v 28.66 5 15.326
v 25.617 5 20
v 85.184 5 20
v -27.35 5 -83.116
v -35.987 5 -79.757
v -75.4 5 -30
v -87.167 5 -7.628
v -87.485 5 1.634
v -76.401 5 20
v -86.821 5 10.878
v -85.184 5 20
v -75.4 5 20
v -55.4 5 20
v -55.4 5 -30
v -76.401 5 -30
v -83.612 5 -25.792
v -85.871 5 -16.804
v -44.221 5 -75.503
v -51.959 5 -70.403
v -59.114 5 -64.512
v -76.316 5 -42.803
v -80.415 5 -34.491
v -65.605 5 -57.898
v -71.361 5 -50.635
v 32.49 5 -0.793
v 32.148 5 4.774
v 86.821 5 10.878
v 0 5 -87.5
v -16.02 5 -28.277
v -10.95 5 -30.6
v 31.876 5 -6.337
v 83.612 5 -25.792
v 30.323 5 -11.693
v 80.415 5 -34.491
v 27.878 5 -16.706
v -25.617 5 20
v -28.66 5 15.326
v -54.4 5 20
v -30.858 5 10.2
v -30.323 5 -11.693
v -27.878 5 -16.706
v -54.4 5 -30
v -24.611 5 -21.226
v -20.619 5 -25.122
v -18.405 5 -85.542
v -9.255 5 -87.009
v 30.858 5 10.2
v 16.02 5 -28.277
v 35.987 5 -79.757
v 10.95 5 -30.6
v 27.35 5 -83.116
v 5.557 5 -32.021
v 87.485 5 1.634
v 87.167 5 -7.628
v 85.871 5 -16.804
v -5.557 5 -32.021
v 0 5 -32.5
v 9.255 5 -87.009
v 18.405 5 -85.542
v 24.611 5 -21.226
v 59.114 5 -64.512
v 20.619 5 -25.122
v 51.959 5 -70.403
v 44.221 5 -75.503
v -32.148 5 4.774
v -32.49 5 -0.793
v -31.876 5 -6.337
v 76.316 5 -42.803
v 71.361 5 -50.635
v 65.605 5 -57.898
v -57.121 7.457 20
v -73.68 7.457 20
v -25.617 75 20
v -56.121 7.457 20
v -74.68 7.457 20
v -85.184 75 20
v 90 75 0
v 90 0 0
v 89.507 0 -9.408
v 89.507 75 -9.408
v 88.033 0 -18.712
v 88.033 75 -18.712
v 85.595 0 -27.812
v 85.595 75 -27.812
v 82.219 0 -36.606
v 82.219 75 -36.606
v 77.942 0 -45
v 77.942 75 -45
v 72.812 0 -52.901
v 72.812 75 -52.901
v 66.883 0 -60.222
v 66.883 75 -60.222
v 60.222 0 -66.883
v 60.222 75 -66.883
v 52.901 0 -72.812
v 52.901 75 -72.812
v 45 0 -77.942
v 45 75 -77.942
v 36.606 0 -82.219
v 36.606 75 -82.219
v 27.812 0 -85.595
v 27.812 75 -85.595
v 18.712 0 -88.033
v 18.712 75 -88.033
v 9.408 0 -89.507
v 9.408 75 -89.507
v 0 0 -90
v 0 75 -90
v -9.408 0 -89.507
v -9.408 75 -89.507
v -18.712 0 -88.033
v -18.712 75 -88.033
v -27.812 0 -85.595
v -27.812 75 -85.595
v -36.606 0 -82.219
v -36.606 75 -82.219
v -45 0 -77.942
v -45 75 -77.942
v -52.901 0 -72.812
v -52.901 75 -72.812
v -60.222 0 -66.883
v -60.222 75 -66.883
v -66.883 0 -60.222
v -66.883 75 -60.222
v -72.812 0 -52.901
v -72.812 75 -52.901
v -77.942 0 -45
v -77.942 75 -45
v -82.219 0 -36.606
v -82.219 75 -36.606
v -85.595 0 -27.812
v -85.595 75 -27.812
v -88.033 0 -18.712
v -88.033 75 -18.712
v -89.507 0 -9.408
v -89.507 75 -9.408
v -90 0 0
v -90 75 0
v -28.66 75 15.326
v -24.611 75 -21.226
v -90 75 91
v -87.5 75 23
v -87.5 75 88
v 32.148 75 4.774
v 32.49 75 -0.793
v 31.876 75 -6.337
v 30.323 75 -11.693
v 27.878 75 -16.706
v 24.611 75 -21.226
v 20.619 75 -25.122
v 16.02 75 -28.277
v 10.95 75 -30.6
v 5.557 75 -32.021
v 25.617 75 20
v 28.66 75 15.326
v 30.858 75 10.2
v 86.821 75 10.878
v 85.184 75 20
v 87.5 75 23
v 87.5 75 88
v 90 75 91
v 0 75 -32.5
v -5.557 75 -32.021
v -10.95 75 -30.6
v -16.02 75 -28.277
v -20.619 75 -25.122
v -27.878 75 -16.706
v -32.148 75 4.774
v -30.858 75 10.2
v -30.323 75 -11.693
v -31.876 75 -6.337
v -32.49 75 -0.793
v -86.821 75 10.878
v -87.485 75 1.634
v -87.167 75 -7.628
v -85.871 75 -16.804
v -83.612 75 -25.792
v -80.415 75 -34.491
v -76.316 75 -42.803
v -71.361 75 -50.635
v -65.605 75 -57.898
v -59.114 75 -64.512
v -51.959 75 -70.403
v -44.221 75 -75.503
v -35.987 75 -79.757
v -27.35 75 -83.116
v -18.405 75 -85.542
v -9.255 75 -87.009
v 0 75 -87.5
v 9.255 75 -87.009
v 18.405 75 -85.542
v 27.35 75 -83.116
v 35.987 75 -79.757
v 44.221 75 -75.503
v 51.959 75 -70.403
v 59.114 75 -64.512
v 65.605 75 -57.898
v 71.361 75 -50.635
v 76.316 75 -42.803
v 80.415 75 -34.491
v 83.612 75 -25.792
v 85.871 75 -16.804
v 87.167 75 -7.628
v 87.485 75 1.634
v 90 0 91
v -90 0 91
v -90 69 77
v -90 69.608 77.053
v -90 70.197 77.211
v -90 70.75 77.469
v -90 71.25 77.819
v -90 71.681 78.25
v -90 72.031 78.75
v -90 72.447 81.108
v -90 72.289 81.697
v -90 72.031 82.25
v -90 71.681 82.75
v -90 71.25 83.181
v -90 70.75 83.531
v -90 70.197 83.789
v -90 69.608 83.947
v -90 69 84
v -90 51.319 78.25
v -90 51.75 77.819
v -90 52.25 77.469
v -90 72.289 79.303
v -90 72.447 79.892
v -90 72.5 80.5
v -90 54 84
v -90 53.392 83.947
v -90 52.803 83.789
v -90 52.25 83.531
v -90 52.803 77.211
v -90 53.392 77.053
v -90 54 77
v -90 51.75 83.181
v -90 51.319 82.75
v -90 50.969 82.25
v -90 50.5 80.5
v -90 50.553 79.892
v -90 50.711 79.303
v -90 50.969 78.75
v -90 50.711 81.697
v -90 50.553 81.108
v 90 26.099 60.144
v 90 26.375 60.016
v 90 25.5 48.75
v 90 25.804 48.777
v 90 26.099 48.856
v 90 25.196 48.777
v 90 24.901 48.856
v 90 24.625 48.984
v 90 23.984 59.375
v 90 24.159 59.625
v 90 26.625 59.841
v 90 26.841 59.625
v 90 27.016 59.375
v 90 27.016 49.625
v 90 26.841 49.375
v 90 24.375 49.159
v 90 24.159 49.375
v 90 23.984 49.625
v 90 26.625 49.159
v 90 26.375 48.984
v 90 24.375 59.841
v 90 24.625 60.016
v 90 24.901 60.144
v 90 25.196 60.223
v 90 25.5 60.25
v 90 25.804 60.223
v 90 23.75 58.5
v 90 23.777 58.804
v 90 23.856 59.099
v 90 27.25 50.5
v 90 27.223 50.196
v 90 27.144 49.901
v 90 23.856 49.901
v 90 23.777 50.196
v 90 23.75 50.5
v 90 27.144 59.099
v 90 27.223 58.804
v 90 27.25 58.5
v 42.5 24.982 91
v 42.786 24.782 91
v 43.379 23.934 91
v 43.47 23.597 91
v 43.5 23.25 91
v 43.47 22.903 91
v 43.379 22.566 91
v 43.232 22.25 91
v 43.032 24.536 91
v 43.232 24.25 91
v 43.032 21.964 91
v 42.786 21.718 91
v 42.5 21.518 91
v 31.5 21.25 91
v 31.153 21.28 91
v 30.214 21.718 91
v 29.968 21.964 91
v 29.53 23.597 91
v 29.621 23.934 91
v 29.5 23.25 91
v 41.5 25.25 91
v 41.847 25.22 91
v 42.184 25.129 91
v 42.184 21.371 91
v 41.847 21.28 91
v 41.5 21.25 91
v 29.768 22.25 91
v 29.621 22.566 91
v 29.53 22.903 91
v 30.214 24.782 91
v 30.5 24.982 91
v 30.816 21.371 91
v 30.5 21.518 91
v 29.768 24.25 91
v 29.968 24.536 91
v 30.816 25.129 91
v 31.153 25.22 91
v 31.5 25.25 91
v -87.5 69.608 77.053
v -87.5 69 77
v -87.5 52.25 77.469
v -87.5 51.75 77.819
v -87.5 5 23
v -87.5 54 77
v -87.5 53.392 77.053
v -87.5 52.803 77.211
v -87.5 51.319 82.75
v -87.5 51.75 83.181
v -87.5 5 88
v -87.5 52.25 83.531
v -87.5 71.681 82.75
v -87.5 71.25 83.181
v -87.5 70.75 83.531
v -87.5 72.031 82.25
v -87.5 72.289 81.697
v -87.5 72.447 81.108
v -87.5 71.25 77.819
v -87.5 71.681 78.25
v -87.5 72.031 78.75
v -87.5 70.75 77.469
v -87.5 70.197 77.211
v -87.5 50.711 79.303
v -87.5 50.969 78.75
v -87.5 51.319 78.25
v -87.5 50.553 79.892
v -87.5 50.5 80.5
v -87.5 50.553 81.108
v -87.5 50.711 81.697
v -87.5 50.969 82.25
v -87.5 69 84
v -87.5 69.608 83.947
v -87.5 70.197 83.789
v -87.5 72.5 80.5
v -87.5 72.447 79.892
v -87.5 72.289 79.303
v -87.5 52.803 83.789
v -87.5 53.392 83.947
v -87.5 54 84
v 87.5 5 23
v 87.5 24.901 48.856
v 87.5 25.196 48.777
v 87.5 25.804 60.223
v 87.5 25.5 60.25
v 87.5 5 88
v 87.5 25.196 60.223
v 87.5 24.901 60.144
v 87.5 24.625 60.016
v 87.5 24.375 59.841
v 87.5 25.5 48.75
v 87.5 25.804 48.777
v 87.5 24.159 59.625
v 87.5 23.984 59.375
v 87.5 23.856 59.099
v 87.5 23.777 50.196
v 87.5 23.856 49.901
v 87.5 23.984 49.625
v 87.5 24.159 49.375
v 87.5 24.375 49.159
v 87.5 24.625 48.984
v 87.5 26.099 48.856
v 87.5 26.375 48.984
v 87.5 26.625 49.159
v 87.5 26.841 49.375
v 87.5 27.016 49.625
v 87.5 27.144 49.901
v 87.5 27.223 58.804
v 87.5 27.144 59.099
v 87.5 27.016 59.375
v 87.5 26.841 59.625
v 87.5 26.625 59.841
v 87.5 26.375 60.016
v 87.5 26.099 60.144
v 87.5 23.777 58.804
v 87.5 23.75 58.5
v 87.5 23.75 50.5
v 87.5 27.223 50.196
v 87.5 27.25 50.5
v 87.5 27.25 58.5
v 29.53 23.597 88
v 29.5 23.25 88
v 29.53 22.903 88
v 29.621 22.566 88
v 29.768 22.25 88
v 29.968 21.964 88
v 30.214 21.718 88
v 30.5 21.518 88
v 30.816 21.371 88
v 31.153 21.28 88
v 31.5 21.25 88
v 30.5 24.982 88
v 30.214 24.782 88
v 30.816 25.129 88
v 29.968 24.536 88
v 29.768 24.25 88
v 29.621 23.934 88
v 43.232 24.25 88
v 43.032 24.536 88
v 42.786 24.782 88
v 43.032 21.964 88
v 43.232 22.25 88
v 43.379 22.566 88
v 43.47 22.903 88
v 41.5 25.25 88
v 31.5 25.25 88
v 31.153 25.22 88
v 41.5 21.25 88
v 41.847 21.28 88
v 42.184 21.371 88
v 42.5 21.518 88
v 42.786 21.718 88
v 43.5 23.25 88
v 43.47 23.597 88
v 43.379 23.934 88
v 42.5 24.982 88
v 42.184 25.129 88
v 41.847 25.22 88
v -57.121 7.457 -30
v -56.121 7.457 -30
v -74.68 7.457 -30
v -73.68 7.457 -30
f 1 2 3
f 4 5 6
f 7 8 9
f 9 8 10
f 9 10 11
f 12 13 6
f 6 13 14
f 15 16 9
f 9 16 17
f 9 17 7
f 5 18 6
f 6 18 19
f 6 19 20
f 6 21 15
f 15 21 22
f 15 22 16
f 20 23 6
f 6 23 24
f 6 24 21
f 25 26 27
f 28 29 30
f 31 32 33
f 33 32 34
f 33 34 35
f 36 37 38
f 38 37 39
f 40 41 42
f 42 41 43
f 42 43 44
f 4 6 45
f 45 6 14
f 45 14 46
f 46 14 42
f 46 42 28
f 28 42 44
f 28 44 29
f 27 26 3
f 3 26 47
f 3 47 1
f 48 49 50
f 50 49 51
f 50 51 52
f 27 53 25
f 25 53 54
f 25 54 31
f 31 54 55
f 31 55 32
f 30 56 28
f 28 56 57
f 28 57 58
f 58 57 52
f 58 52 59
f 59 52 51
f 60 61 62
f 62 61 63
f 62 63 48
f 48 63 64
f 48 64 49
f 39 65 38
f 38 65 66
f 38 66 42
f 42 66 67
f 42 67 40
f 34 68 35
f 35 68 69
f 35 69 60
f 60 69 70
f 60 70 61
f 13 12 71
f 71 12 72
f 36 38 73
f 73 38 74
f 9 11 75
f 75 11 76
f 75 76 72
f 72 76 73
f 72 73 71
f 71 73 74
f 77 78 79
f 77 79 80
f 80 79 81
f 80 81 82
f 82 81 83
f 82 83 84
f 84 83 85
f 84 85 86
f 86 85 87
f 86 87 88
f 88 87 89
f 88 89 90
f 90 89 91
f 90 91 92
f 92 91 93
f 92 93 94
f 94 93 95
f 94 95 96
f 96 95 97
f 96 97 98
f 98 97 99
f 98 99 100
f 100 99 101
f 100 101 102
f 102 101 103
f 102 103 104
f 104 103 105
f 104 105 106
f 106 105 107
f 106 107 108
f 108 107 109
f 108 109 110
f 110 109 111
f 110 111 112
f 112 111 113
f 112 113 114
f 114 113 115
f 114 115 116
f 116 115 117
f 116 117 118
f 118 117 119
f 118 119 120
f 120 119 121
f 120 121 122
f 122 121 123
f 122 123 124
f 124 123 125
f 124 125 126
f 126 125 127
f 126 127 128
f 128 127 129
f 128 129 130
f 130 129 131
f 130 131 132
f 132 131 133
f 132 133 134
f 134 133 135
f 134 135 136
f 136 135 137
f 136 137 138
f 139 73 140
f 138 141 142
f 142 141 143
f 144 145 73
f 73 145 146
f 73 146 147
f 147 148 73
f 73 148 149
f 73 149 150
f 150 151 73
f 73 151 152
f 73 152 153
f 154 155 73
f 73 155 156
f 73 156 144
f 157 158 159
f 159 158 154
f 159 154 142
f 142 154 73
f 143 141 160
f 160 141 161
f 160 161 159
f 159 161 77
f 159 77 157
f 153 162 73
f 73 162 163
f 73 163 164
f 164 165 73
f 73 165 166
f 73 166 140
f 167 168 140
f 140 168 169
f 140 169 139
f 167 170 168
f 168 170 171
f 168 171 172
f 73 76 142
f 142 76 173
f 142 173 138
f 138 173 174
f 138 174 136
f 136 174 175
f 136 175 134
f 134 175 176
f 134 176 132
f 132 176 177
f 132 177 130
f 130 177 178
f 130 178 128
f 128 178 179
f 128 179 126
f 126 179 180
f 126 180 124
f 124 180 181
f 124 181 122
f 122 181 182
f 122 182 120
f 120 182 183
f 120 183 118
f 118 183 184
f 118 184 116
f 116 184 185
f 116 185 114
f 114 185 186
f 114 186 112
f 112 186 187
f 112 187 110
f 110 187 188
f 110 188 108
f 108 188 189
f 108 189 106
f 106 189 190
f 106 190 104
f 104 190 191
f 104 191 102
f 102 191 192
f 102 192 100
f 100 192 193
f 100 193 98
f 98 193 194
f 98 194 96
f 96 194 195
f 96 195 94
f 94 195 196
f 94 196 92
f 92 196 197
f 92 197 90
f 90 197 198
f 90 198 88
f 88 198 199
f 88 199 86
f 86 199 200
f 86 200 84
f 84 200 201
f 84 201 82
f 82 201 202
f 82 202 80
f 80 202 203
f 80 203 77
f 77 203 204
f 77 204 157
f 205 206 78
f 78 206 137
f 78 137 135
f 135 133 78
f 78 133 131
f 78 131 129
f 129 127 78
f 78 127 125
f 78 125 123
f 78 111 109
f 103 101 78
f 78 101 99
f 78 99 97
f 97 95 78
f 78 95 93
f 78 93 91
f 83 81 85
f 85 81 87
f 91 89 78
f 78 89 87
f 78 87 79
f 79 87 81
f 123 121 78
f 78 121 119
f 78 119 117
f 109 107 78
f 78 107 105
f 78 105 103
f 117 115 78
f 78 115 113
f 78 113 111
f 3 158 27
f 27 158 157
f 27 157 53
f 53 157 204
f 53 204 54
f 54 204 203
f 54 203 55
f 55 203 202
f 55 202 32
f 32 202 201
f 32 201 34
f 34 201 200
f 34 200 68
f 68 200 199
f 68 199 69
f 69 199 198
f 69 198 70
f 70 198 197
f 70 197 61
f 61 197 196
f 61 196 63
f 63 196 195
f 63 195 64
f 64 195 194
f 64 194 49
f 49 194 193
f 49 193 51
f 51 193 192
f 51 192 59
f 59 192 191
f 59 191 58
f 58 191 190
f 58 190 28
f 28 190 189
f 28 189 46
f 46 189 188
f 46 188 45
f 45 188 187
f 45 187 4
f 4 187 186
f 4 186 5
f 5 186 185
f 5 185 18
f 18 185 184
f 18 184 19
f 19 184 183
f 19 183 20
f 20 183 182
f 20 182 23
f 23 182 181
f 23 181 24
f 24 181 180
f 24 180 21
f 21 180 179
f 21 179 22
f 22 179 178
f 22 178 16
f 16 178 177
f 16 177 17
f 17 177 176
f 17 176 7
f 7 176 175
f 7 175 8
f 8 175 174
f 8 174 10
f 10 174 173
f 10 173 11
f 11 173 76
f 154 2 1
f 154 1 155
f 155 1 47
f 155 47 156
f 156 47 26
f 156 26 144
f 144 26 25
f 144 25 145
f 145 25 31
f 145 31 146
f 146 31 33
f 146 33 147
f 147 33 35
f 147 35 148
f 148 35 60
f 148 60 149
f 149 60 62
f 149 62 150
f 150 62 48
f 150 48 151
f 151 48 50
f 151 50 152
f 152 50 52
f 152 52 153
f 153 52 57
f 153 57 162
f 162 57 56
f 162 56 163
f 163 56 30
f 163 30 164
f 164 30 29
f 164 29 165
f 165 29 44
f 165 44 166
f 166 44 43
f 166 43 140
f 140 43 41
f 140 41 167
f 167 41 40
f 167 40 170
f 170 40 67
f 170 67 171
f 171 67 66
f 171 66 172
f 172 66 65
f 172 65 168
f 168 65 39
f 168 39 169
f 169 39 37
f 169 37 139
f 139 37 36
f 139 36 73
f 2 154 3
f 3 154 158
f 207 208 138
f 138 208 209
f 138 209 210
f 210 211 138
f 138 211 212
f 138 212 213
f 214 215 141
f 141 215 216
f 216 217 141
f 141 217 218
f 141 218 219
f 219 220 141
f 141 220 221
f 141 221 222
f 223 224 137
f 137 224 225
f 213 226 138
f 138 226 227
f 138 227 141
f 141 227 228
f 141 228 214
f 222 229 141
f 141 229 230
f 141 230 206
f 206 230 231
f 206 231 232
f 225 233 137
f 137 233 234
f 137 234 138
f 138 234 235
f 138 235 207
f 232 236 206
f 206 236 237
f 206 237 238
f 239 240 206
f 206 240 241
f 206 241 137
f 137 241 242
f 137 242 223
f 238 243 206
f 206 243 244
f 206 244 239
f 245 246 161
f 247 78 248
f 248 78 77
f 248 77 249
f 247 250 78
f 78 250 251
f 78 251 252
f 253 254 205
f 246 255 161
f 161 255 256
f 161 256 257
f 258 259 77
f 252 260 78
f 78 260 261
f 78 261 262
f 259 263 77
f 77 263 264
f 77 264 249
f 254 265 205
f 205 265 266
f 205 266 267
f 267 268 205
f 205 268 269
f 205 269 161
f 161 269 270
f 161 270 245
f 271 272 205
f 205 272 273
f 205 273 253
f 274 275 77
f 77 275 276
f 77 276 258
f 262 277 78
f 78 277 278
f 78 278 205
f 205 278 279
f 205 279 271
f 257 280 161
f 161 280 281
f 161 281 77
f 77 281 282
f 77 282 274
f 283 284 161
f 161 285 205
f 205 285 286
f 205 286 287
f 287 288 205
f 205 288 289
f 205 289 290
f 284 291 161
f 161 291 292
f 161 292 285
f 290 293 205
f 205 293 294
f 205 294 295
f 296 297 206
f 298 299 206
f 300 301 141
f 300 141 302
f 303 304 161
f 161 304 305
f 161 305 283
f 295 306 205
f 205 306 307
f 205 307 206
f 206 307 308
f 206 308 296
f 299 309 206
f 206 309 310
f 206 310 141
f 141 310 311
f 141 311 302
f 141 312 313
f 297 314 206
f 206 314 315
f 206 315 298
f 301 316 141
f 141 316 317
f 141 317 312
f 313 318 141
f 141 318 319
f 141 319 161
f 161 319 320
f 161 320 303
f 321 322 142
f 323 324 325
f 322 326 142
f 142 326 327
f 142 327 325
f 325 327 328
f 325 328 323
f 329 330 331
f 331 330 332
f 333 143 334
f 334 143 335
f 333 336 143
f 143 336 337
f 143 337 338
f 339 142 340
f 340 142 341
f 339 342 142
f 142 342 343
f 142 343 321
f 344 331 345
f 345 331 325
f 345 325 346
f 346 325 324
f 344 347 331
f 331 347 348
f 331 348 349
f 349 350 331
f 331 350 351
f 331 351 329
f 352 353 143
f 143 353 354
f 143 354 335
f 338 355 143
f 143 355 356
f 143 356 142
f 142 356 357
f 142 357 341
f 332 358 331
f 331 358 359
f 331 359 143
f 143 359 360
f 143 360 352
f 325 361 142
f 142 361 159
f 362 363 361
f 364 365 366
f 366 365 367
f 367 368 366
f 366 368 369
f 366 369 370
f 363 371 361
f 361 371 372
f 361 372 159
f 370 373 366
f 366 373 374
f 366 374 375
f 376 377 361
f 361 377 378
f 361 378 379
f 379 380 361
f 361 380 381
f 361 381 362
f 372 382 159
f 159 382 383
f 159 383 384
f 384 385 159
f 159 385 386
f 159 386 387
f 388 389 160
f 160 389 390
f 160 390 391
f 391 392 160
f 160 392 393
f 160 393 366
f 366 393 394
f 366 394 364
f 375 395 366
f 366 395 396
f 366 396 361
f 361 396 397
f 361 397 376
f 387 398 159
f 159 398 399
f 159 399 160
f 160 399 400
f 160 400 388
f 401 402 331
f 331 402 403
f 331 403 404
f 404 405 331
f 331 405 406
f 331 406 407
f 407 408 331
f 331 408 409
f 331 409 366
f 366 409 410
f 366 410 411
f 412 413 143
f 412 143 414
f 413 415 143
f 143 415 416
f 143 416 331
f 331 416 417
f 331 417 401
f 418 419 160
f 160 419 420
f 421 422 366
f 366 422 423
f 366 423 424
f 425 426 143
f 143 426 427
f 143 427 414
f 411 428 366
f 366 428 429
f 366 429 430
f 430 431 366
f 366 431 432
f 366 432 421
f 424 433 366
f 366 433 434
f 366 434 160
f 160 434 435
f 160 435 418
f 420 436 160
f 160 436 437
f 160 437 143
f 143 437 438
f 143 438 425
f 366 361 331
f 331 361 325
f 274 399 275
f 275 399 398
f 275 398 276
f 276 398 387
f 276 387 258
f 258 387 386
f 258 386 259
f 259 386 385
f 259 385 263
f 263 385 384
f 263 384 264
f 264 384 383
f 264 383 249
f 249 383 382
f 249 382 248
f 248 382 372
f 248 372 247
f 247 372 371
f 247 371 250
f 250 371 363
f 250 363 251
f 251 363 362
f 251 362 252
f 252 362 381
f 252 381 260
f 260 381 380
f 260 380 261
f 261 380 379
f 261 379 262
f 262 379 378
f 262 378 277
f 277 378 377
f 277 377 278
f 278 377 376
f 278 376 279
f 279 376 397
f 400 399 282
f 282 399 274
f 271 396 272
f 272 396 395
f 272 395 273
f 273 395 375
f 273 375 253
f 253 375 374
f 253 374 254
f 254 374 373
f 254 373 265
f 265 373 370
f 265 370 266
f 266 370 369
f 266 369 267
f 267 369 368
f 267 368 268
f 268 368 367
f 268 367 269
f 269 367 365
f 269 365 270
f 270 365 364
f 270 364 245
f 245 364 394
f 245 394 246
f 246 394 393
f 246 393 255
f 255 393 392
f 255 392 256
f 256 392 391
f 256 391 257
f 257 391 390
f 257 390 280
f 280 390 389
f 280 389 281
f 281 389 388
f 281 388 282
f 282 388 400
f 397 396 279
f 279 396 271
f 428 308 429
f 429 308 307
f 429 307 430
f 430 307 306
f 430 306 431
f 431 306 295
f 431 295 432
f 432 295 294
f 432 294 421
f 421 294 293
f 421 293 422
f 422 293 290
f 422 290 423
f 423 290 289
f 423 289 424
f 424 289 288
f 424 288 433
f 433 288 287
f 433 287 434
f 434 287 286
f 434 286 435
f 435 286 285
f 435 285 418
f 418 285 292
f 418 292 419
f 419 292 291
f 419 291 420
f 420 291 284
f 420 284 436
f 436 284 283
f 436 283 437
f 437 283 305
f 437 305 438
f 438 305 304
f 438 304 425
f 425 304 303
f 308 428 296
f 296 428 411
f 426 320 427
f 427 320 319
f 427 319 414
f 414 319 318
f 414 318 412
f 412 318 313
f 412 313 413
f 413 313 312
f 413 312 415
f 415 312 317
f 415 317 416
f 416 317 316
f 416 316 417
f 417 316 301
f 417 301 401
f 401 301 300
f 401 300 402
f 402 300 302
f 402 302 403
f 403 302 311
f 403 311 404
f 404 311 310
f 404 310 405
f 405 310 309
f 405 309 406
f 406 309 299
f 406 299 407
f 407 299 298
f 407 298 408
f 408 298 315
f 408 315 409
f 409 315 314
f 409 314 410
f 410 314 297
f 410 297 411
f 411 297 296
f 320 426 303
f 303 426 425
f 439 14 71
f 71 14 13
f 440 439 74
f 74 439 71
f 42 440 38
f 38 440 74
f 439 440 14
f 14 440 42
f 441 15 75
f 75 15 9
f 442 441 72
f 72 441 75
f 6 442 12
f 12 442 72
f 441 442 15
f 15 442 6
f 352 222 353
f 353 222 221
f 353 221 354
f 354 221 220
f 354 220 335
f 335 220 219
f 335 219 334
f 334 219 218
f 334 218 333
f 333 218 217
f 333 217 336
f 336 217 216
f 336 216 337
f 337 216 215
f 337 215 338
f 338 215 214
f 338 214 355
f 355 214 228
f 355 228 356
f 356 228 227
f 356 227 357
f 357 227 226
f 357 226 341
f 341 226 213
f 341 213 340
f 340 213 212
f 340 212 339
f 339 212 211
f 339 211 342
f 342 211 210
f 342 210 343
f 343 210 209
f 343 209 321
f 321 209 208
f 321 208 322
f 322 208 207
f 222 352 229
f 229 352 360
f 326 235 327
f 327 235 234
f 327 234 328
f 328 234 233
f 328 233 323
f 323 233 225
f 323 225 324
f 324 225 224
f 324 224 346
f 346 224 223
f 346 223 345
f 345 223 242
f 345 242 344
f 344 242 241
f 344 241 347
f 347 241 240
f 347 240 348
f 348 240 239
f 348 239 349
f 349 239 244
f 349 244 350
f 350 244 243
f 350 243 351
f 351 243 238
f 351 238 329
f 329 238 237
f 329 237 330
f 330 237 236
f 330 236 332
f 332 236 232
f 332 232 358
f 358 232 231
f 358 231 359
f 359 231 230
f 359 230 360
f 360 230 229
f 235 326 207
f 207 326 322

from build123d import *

# Parameters (mm, degrees)
SKETCH1_R           = 90
BOSS_EXTRUDE1_DEPTH = 75
SKETCH2_R           = 87.5
CUT_EXTRUDE1_DEPTH  = 70
SKETCH3_R           = 32.5
BOSS_EXTRUDE2_DEPTH = 70
SKETCH4_W           = 180
SKETCH4_H           = 66
CUT_EXTRUDE2_DEPTH  = 75
SKETCH5_W           = 175
SKETCH5_H           = 61.187525855
CUT_EXTRUDE3_DEPTH  = 75
SKETCH6_W           = 179.999459639
SKETCH6_H           = 83.811872958
CUT_EXTRUDE4_DEPTH  = 75
SKETCH8_W           = 180
SKETCH8_H           = 71
BOSS_EXTRUDE5_DEPTH = 75
BOSS_EXTRUDE6_REACH = 182
SKETCH10_W          = 20
SKETCH10_H          = 75
BOSS_EXTRUDE7_REACH = 182
SKETCH11_W          = 20
SKETCH11_H          = 75
SKETCH12_W          = 175
SKETCH12_H          = 65
CUT_EXTRUDE5_DEPTH  = 70
CUT_EXTRUDE6_DEPTH  = 70
CUT_EXTRUDE7_DEPTH  = 10
BOSS_EXTRUDE8_DEPTH = 50
CUT_EXTRUDE8_DEPTH  = 50


with BuildPart() as part:
    # Sketch1 → Boss-Extrude1 (new body)
    with BuildSketch(Plane(origin=(0, 0, 0), x_dir=(1, 0, 0), z_dir=(0, 1, 0))):
        Circle(SKETCH1_R)
    extrude(amount=BOSS_EXTRUDE1_DEPTH)

    # Sketch2 → Cut-Extrude1 (cut)
    with BuildSketch(Plane(origin=(0, 75, 0), x_dir=(1, 0, 0), z_dir=(0, 1, 0))):
        Circle(SKETCH2_R)
    extrude(amount=-CUT_EXTRUDE1_DEPTH, mode=Mode.SUBTRACT)

    # Sketch3 → Boss-Extrude2 (add)
    with BuildSketch(Plane(origin=(0, 5, 0), x_dir=(1, 0, 0), z_dir=(0, 1, 0))):
        Circle(SKETCH3_R)
    extrude(amount=BOSS_EXTRUDE2_DEPTH)

    # Sketch4 → Cut-Extrude2 (cut)
    with BuildSketch(Plane(origin=(0, 75, 0), x_dir=(1, 0, 0), z_dir=(0, 1, 0))):
        with Locations((0, -65.5)):
            Rectangle(SKETCH4_W, SKETCH4_H)
    extrude(amount=-CUT_EXTRUDE2_DEPTH, mode=Mode.SUBTRACT)

    # Sketch5 → Cut-Extrude3 (cut)
    with BuildSketch(Plane(origin=(0, 75, 0), x_dir=(1, 0, 0), z_dir=(0, 1, 0))):
        with Locations((-0.249643874, -50.593762928)):
            Rectangle(SKETCH5_W, SKETCH5_H)
    extrude(amount=-CUT_EXTRUDE3_DEPTH, mode=Mode.SUBTRACT)

    # Sketch6 → Cut-Extrude4 (cut)
    with BuildSketch(Plane(origin=(0, 75, 0), x_dir=(1, 0, 0), z_dir=(0, 1, 0))):
        with Locations((0.00027018, -61.905936479)):
            Rectangle(SKETCH6_W, SKETCH6_H)
    extrude(amount=-CUT_EXTRUDE4_DEPTH, mode=Mode.SUBTRACT)

    # Sketch8 → Boss-Extrude5 (add)
    with BuildSketch(Plane(origin=(0, 75, 0), x_dir=(1, 0, 0), z_dir=(0, 1, 0))):
        with Locations((0, -55.5)):
            Rectangle(SKETCH8_W, SKETCH8_H)
    extrude(amount=-BOSS_EXTRUDE5_DEPTH)

    # Sketch10 → Boss-Extrude6 (add, up to next)
    with BuildSketch(Plane.ZY.offset(90), mode=Mode.PRIVATE) as boss_extrude6_sk1:
        with Locations((10, 37.5)):
            Rectangle(SKETCH10_W, SKETCH10_H)
    boss_extrude6_tool1 = extrude(boss_extrude6_sk1.sketch, amount=-BOSS_EXTRUDE6_REACH, mode=Mode.PRIVATE) - part.part
    add(boss_extrude6_tool1.solids().sort_by_distance((-90, 37.5, 10))[0])

    # Sketch11 → Boss-Extrude7 (add, up to next)
    with BuildSketch(Plane(origin=(90, 0, 0), x_dir=(0, 0, -1), z_dir=(1, 0, 0)), mode=Mode.PRIVATE) as boss_extrude7_sk1:
        with Locations((-10, 37.5)):
            Rectangle(SKETCH11_W, SKETCH11_H)
    boss_extrude7_tool1 = extrude(boss_extrude7_sk1.sketch, amount=-BOSS_EXTRUDE7_REACH, mode=Mode.PRIVATE) - part.part
    add(boss_extrude7_tool1.solids().sort_by_distance((90, 37.5, 10))[0])

    # Sketch12 → Cut-Extrude5 (cut)
    with BuildSketch(Plane(origin=(0, 75, 0), x_dir=(1, 0, 0), z_dir=(0, 1, 0))):
        with Locations((0, -55.5)):
            Rectangle(SKETCH12_W, SKETCH12_H)
    extrude(amount=-CUT_EXTRUDE5_DEPTH, mode=Mode.SUBTRACT)

    # Sketch13 → Cut-Extrude6 (cut)
    with BuildSketch(Plane.ZY.offset(-87.5)):
        with BuildLine():
            Line((50.5, 27.25), (58.5, 27.25))
            ThreePointArc((58.5, 27.25), (60.25, 25.5), (58.5, 23.75))
            Line((58.5, 23.75), (50.5, 23.75))
            ThreePointArc((50.5, 23.75), (48.75, 25.5), (50.5, 27.25))
        make_face()
    extrude(amount=-CUT_EXTRUDE6_DEPTH, mode=Mode.SUBTRACT)

    # Sketch14 → Cut-Extrude7 (cut)
    with BuildSketch(Plane.XY.offset(91)):
        with BuildLine():
            Line((41.5, 21.25), (31.5, 21.25))
            ThreePointArc((31.5, 21.25), (29.5, 23.25), (31.5, 25.25))
            Line((31.5, 25.25), (41.5, 25.25))
            ThreePointArc((41.5, 25.25), (43.5, 23.25), (41.5, 21.25))
        make_face()
    extrude(amount=-CUT_EXTRUDE7_DEPTH, mode=Mode.SUBTRACT)

    # Sketch15 → Boss-Extrude8 (add)
    with BuildSketch(Plane(origin=(0, 0, 20), x_dir=(-1, 0, 0), z_dir=(0, 0, -1))):
        Polygon((55.400501051, 5), (57.12123036, 7.457456133), (56.12123036, 7.457456133), (54.400501051, 5), align=None)
        Polygon((73.679771742, 7.457456133), (74.679771742, 7.457456133), (76.400501051, 5), (75.400501051, 5), align=None)
    extrude(amount=BOSS_EXTRUDE8_DEPTH)

    # Sketch17 → Cut-Extrude8 (cut)
    with BuildSketch(Plane.ZY.offset(90)):
        with BuildLine():
            Line((84, 69), (84, 54))
            ThreePointArc((84, 54), (80.5, 50.5), (77, 54))
            Line((77, 54), (77, 69))
            ThreePointArc((77, 69), (80.5, 72.5), (84, 69))
        make_face()
    extrude(amount=-CUT_EXTRUDE8_DEPTH, mode=Mode.SUBTRACT)


solid = part.part
